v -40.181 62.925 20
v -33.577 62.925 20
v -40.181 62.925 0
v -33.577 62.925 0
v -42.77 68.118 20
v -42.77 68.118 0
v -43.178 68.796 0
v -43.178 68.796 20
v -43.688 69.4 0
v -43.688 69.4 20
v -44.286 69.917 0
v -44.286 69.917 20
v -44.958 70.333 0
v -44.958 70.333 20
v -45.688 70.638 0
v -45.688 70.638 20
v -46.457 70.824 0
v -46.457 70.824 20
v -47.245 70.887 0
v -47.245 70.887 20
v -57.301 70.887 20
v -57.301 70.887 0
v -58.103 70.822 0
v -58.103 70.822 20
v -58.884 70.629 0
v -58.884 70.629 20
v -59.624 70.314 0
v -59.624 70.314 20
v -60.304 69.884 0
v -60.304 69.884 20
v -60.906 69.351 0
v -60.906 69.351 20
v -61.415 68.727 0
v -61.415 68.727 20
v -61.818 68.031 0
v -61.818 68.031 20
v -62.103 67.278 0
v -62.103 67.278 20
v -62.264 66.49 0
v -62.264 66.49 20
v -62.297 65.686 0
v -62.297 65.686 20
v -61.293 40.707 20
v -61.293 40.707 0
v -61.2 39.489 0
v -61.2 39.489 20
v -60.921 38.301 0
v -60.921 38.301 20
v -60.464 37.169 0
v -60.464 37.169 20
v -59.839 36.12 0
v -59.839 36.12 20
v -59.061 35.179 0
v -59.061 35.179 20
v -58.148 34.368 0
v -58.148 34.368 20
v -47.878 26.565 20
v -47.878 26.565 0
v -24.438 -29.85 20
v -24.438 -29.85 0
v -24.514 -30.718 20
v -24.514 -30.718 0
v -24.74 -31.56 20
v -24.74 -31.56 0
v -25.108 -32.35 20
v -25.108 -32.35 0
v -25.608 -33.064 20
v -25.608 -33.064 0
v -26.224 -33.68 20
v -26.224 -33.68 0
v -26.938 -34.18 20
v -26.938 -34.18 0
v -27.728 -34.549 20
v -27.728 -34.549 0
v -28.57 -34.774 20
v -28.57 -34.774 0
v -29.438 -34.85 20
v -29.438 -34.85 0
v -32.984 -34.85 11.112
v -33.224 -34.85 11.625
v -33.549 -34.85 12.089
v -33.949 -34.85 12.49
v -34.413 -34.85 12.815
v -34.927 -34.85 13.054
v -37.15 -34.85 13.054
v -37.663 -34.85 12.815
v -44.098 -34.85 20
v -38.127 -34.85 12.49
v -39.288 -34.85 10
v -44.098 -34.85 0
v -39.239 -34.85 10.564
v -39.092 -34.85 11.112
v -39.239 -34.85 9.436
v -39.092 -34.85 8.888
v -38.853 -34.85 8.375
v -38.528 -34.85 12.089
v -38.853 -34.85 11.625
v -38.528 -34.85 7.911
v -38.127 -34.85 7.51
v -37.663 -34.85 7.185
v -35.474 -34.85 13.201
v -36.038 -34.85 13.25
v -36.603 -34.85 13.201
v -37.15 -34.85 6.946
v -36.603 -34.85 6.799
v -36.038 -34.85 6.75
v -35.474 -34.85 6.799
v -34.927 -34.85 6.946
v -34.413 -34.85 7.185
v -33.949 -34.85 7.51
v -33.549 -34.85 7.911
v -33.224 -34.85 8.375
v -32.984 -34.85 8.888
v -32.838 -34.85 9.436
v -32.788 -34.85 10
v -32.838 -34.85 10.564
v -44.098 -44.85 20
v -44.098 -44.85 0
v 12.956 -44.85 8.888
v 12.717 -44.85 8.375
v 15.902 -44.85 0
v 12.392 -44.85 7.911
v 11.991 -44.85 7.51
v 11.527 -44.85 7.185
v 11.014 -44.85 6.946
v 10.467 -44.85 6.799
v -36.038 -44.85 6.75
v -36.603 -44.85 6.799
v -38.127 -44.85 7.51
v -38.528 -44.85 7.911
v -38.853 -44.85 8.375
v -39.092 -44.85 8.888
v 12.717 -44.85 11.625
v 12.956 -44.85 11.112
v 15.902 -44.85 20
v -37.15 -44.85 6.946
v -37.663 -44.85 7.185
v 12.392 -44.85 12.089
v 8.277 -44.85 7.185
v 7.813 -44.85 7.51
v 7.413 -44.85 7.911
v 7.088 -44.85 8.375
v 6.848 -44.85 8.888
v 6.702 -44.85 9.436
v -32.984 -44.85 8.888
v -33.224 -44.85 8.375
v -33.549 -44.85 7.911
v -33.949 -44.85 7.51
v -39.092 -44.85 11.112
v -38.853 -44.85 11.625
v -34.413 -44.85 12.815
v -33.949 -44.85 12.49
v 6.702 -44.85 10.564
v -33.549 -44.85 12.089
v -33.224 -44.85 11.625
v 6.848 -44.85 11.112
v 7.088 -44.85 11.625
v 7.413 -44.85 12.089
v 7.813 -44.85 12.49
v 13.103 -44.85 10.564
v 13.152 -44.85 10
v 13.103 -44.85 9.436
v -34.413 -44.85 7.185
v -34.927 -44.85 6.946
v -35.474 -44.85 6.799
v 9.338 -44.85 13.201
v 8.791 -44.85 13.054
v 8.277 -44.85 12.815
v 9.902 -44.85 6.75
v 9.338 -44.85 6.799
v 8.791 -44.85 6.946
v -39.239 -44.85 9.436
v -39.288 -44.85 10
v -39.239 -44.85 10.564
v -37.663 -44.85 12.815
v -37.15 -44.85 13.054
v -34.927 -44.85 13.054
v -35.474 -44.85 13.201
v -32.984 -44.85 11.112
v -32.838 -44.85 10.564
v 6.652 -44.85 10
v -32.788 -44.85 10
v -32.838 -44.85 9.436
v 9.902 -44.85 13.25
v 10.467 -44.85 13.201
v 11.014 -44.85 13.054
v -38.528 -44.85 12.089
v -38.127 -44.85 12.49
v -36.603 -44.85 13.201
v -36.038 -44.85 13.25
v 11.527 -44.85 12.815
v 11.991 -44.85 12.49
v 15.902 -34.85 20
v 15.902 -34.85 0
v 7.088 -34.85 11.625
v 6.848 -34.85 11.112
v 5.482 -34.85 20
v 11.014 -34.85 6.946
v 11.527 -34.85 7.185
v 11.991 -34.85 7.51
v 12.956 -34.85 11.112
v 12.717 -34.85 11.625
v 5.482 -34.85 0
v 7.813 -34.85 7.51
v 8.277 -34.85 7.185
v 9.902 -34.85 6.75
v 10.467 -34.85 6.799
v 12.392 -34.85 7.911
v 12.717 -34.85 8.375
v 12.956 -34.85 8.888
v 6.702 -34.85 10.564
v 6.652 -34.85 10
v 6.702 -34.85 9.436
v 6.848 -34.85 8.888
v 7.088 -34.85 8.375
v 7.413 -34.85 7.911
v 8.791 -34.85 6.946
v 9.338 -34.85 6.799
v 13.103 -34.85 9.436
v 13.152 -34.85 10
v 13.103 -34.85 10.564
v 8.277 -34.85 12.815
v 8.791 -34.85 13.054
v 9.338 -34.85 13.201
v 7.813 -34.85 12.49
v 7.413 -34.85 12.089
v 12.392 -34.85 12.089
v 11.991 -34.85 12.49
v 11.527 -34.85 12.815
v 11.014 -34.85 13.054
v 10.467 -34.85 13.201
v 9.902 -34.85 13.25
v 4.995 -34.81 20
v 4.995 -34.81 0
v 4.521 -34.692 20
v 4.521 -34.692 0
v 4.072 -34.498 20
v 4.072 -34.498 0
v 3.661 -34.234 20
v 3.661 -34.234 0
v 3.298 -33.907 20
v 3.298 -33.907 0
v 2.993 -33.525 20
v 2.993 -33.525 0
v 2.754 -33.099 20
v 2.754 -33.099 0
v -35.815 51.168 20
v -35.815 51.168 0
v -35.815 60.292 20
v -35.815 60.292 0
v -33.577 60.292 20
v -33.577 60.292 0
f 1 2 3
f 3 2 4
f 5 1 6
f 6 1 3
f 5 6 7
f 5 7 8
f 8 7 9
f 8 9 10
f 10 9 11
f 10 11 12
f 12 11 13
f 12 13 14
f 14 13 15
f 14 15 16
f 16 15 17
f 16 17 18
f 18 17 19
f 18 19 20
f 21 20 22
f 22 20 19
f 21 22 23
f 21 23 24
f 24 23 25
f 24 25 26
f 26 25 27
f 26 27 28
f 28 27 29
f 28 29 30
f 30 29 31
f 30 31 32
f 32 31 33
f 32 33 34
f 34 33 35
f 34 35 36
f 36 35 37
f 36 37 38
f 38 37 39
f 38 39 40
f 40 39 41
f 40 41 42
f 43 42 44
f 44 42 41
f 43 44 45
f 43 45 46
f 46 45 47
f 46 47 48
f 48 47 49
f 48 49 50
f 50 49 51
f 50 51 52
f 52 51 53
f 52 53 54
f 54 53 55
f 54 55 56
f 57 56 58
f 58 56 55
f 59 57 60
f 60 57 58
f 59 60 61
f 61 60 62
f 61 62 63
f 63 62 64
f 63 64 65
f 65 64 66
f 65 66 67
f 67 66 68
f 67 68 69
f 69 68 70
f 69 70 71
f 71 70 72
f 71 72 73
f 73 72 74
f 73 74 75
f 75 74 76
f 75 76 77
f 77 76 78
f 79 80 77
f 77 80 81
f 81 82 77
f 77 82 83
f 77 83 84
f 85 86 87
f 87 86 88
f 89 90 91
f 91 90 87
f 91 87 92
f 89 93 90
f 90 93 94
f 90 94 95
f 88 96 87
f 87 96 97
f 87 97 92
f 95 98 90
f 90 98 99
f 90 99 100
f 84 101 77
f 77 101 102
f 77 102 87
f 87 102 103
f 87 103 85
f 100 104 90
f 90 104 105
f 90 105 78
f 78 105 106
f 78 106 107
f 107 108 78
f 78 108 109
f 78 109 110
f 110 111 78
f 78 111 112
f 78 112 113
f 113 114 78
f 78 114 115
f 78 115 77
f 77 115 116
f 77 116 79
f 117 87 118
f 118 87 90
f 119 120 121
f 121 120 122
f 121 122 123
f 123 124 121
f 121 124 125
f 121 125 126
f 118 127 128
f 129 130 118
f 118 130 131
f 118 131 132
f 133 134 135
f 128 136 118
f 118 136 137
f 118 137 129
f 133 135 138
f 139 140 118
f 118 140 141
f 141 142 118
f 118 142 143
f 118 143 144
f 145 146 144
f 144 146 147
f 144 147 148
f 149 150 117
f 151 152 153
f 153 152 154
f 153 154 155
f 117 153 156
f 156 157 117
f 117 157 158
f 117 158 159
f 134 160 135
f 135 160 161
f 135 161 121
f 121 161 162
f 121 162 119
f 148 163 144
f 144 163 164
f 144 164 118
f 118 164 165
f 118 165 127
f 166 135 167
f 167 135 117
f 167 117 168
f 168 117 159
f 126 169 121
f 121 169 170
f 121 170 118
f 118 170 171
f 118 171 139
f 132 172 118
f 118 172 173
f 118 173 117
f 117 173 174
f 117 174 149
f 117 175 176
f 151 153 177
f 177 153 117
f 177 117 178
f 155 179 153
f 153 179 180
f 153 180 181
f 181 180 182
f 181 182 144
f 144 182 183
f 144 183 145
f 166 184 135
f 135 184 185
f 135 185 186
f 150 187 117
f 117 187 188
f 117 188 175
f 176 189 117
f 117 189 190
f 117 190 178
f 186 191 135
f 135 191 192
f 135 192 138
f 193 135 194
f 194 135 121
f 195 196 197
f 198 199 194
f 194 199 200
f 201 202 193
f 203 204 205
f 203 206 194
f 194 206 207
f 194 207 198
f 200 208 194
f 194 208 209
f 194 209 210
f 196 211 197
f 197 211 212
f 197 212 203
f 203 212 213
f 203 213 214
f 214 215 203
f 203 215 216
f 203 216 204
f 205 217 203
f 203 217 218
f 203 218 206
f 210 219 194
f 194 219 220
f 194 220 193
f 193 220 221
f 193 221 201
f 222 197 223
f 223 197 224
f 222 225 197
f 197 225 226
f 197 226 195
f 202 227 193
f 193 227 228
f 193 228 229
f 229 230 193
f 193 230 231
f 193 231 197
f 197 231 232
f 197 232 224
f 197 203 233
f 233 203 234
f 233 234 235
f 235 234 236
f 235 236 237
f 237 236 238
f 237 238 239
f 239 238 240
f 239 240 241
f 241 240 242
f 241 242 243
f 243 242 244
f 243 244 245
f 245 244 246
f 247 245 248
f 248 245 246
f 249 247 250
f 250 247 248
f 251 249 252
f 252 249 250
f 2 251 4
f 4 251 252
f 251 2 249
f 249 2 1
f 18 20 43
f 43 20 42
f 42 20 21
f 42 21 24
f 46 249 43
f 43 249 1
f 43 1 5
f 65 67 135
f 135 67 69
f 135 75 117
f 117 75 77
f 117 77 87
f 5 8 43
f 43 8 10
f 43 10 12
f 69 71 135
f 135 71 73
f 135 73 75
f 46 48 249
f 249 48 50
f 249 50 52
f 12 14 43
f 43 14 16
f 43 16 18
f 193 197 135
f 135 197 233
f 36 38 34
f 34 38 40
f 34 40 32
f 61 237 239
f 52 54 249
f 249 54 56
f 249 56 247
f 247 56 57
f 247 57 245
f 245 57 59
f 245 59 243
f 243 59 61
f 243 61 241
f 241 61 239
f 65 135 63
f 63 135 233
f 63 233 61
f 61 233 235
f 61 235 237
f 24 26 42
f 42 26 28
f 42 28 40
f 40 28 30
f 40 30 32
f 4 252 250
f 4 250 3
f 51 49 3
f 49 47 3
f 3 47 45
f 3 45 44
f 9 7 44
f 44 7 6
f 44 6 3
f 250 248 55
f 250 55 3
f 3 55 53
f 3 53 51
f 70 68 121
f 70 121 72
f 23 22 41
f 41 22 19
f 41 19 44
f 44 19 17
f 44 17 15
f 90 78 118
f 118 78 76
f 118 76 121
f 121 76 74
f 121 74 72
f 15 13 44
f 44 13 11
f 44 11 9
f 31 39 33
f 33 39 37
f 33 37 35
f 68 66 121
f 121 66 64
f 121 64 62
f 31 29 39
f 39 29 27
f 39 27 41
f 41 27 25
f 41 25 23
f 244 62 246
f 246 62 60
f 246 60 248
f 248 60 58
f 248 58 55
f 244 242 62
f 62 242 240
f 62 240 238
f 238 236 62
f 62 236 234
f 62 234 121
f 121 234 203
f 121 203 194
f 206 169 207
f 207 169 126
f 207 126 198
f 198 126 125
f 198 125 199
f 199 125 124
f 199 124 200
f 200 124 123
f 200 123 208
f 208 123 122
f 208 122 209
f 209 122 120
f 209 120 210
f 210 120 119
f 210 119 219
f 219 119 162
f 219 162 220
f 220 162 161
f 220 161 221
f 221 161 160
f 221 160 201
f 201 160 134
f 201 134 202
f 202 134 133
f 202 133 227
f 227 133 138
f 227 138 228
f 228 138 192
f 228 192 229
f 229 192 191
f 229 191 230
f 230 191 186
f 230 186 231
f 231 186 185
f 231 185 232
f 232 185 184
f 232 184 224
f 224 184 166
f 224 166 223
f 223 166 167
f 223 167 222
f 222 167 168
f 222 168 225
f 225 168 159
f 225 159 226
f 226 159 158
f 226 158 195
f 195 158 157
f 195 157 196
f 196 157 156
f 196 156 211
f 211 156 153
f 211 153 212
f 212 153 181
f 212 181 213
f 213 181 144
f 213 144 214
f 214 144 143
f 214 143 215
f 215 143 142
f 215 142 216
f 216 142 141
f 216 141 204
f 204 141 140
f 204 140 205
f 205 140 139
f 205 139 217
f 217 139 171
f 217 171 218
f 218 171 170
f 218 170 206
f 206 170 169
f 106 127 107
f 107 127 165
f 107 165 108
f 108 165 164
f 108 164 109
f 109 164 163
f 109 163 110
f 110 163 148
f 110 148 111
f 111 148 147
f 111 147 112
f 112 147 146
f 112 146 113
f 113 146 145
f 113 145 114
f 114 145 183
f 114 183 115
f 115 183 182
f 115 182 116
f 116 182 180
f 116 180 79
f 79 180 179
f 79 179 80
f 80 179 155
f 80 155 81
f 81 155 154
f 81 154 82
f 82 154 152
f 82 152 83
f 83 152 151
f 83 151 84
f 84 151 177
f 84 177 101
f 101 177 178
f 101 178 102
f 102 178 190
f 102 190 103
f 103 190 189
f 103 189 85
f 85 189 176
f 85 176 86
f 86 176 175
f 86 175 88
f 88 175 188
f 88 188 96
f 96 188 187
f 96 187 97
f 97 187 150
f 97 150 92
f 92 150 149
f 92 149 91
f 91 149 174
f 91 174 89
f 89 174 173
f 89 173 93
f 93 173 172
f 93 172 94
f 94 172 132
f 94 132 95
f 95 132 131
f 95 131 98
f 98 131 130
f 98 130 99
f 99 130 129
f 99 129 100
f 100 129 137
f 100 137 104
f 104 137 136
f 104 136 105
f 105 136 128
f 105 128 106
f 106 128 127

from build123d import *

# Parameters (mm, degrees)
BOSS_EXTRUDE1_DEPTH     = 20
SKETCH3_R               = 3.25
CUT_EXTRUDE1_DEPTH      = 20
CUT_EXTRUDE1_DEPTH_BACK = 20


with BuildPart() as part:
    # Sketch1 → Boss-Extrude1 (new body)
    with BuildSketch(Plane.XY):
        with BuildLine():
            Line((-44.097792079, -34.850100287), (-44.097792079, -44.850100287))
            Line((-44.097792079, -44.850100287), (15.902191644, -44.850100287))
            Line((15.902191644, -44.850100287), (15.902191644, -34.850100287))
            Line((15.902191644, -34.850100287), (5.481837679, -34.850100287))
            ThreePointArc((5.481837679, -34.850100287), (3.860980617, -34.374545252), (2.753994712, -33.098648543))
            Line((2.753994712, -33.098648543), (-35.815277858, 51.167953451))
            Line((-35.815277858, 51.167953451), (-35.815277858, 60.291959238))
            Line((-35.815277858, 60.291959238), (-33.576612404, 60.291959238))
            Line((-33.576612404, 60.291959238), (-33.576612404, 62.924734339))
            Line((-33.576612404, 62.924734339), (-40.180850679, 62.924734339))
            Line((-40.180850679, 62.924734339), (-42.770369484, 68.117950349))
            ThreePointArc((-42.770369484, 68.117950349), (-44.613967183, 70.138587546), (-47.244946047, 70.886770262))
            Line((-47.244946047, 70.886770262), (-57.300660313, 70.886770262))
            ThreePointArc((-57.300660313, 70.886770262), (-60.906449606, 69.350624123), (-62.296631179, 65.686083691))
            Line((-62.296631179, 65.686083691), (-61.293211228, 40.706550479))
            ThreePointArc((-61.293211228, 40.706550479), (-60.463803823, 37.168602153), (-58.148414135, 34.367894102))
            Line((-58.148414135, 34.367894102), (-47.87808719, 26.565161379))
            Line((-47.87808719, 26.565161379), (-24.43830161, -29.850100287))
            ThreePointArc((-24.43830161, -29.850100287), (-25.902767704, -33.385634193), (-29.43830161, -34.850100287))
            Line((-29.43830161, -34.850100287), (-35.915534593, -34.850100287))
            Line((-35.915534593, -34.850100287), (-44.097792079, -34.850100287))
        make_face()
    extrude(amount=BOSS_EXTRUDE1_DEPTH)

    # Sketch3 → Cut-Extrude1 (cut, two sides)
    with BuildSketch(Plane(origin=(0, -34.850100287, 0), x_dir=(1, 0, 0), z_dir=(0, 1, 0))) as cut_extrude1_sk:
        with Locations((9.902191644, -10)):
            Circle(SKETCH3_R)
        with Locations((-36.038433316, -10)):
            Circle(SKETCH3_R)
    extrude(amount=CUT_EXTRUDE1_DEPTH, mode=Mode.SUBTRACT)
    extrude(cut_extrude1_sk.sketch, amount=-CUT_EXTRUDE1_DEPTH_BACK, mode=Mode.SUBTRACT)


solid = part.part
